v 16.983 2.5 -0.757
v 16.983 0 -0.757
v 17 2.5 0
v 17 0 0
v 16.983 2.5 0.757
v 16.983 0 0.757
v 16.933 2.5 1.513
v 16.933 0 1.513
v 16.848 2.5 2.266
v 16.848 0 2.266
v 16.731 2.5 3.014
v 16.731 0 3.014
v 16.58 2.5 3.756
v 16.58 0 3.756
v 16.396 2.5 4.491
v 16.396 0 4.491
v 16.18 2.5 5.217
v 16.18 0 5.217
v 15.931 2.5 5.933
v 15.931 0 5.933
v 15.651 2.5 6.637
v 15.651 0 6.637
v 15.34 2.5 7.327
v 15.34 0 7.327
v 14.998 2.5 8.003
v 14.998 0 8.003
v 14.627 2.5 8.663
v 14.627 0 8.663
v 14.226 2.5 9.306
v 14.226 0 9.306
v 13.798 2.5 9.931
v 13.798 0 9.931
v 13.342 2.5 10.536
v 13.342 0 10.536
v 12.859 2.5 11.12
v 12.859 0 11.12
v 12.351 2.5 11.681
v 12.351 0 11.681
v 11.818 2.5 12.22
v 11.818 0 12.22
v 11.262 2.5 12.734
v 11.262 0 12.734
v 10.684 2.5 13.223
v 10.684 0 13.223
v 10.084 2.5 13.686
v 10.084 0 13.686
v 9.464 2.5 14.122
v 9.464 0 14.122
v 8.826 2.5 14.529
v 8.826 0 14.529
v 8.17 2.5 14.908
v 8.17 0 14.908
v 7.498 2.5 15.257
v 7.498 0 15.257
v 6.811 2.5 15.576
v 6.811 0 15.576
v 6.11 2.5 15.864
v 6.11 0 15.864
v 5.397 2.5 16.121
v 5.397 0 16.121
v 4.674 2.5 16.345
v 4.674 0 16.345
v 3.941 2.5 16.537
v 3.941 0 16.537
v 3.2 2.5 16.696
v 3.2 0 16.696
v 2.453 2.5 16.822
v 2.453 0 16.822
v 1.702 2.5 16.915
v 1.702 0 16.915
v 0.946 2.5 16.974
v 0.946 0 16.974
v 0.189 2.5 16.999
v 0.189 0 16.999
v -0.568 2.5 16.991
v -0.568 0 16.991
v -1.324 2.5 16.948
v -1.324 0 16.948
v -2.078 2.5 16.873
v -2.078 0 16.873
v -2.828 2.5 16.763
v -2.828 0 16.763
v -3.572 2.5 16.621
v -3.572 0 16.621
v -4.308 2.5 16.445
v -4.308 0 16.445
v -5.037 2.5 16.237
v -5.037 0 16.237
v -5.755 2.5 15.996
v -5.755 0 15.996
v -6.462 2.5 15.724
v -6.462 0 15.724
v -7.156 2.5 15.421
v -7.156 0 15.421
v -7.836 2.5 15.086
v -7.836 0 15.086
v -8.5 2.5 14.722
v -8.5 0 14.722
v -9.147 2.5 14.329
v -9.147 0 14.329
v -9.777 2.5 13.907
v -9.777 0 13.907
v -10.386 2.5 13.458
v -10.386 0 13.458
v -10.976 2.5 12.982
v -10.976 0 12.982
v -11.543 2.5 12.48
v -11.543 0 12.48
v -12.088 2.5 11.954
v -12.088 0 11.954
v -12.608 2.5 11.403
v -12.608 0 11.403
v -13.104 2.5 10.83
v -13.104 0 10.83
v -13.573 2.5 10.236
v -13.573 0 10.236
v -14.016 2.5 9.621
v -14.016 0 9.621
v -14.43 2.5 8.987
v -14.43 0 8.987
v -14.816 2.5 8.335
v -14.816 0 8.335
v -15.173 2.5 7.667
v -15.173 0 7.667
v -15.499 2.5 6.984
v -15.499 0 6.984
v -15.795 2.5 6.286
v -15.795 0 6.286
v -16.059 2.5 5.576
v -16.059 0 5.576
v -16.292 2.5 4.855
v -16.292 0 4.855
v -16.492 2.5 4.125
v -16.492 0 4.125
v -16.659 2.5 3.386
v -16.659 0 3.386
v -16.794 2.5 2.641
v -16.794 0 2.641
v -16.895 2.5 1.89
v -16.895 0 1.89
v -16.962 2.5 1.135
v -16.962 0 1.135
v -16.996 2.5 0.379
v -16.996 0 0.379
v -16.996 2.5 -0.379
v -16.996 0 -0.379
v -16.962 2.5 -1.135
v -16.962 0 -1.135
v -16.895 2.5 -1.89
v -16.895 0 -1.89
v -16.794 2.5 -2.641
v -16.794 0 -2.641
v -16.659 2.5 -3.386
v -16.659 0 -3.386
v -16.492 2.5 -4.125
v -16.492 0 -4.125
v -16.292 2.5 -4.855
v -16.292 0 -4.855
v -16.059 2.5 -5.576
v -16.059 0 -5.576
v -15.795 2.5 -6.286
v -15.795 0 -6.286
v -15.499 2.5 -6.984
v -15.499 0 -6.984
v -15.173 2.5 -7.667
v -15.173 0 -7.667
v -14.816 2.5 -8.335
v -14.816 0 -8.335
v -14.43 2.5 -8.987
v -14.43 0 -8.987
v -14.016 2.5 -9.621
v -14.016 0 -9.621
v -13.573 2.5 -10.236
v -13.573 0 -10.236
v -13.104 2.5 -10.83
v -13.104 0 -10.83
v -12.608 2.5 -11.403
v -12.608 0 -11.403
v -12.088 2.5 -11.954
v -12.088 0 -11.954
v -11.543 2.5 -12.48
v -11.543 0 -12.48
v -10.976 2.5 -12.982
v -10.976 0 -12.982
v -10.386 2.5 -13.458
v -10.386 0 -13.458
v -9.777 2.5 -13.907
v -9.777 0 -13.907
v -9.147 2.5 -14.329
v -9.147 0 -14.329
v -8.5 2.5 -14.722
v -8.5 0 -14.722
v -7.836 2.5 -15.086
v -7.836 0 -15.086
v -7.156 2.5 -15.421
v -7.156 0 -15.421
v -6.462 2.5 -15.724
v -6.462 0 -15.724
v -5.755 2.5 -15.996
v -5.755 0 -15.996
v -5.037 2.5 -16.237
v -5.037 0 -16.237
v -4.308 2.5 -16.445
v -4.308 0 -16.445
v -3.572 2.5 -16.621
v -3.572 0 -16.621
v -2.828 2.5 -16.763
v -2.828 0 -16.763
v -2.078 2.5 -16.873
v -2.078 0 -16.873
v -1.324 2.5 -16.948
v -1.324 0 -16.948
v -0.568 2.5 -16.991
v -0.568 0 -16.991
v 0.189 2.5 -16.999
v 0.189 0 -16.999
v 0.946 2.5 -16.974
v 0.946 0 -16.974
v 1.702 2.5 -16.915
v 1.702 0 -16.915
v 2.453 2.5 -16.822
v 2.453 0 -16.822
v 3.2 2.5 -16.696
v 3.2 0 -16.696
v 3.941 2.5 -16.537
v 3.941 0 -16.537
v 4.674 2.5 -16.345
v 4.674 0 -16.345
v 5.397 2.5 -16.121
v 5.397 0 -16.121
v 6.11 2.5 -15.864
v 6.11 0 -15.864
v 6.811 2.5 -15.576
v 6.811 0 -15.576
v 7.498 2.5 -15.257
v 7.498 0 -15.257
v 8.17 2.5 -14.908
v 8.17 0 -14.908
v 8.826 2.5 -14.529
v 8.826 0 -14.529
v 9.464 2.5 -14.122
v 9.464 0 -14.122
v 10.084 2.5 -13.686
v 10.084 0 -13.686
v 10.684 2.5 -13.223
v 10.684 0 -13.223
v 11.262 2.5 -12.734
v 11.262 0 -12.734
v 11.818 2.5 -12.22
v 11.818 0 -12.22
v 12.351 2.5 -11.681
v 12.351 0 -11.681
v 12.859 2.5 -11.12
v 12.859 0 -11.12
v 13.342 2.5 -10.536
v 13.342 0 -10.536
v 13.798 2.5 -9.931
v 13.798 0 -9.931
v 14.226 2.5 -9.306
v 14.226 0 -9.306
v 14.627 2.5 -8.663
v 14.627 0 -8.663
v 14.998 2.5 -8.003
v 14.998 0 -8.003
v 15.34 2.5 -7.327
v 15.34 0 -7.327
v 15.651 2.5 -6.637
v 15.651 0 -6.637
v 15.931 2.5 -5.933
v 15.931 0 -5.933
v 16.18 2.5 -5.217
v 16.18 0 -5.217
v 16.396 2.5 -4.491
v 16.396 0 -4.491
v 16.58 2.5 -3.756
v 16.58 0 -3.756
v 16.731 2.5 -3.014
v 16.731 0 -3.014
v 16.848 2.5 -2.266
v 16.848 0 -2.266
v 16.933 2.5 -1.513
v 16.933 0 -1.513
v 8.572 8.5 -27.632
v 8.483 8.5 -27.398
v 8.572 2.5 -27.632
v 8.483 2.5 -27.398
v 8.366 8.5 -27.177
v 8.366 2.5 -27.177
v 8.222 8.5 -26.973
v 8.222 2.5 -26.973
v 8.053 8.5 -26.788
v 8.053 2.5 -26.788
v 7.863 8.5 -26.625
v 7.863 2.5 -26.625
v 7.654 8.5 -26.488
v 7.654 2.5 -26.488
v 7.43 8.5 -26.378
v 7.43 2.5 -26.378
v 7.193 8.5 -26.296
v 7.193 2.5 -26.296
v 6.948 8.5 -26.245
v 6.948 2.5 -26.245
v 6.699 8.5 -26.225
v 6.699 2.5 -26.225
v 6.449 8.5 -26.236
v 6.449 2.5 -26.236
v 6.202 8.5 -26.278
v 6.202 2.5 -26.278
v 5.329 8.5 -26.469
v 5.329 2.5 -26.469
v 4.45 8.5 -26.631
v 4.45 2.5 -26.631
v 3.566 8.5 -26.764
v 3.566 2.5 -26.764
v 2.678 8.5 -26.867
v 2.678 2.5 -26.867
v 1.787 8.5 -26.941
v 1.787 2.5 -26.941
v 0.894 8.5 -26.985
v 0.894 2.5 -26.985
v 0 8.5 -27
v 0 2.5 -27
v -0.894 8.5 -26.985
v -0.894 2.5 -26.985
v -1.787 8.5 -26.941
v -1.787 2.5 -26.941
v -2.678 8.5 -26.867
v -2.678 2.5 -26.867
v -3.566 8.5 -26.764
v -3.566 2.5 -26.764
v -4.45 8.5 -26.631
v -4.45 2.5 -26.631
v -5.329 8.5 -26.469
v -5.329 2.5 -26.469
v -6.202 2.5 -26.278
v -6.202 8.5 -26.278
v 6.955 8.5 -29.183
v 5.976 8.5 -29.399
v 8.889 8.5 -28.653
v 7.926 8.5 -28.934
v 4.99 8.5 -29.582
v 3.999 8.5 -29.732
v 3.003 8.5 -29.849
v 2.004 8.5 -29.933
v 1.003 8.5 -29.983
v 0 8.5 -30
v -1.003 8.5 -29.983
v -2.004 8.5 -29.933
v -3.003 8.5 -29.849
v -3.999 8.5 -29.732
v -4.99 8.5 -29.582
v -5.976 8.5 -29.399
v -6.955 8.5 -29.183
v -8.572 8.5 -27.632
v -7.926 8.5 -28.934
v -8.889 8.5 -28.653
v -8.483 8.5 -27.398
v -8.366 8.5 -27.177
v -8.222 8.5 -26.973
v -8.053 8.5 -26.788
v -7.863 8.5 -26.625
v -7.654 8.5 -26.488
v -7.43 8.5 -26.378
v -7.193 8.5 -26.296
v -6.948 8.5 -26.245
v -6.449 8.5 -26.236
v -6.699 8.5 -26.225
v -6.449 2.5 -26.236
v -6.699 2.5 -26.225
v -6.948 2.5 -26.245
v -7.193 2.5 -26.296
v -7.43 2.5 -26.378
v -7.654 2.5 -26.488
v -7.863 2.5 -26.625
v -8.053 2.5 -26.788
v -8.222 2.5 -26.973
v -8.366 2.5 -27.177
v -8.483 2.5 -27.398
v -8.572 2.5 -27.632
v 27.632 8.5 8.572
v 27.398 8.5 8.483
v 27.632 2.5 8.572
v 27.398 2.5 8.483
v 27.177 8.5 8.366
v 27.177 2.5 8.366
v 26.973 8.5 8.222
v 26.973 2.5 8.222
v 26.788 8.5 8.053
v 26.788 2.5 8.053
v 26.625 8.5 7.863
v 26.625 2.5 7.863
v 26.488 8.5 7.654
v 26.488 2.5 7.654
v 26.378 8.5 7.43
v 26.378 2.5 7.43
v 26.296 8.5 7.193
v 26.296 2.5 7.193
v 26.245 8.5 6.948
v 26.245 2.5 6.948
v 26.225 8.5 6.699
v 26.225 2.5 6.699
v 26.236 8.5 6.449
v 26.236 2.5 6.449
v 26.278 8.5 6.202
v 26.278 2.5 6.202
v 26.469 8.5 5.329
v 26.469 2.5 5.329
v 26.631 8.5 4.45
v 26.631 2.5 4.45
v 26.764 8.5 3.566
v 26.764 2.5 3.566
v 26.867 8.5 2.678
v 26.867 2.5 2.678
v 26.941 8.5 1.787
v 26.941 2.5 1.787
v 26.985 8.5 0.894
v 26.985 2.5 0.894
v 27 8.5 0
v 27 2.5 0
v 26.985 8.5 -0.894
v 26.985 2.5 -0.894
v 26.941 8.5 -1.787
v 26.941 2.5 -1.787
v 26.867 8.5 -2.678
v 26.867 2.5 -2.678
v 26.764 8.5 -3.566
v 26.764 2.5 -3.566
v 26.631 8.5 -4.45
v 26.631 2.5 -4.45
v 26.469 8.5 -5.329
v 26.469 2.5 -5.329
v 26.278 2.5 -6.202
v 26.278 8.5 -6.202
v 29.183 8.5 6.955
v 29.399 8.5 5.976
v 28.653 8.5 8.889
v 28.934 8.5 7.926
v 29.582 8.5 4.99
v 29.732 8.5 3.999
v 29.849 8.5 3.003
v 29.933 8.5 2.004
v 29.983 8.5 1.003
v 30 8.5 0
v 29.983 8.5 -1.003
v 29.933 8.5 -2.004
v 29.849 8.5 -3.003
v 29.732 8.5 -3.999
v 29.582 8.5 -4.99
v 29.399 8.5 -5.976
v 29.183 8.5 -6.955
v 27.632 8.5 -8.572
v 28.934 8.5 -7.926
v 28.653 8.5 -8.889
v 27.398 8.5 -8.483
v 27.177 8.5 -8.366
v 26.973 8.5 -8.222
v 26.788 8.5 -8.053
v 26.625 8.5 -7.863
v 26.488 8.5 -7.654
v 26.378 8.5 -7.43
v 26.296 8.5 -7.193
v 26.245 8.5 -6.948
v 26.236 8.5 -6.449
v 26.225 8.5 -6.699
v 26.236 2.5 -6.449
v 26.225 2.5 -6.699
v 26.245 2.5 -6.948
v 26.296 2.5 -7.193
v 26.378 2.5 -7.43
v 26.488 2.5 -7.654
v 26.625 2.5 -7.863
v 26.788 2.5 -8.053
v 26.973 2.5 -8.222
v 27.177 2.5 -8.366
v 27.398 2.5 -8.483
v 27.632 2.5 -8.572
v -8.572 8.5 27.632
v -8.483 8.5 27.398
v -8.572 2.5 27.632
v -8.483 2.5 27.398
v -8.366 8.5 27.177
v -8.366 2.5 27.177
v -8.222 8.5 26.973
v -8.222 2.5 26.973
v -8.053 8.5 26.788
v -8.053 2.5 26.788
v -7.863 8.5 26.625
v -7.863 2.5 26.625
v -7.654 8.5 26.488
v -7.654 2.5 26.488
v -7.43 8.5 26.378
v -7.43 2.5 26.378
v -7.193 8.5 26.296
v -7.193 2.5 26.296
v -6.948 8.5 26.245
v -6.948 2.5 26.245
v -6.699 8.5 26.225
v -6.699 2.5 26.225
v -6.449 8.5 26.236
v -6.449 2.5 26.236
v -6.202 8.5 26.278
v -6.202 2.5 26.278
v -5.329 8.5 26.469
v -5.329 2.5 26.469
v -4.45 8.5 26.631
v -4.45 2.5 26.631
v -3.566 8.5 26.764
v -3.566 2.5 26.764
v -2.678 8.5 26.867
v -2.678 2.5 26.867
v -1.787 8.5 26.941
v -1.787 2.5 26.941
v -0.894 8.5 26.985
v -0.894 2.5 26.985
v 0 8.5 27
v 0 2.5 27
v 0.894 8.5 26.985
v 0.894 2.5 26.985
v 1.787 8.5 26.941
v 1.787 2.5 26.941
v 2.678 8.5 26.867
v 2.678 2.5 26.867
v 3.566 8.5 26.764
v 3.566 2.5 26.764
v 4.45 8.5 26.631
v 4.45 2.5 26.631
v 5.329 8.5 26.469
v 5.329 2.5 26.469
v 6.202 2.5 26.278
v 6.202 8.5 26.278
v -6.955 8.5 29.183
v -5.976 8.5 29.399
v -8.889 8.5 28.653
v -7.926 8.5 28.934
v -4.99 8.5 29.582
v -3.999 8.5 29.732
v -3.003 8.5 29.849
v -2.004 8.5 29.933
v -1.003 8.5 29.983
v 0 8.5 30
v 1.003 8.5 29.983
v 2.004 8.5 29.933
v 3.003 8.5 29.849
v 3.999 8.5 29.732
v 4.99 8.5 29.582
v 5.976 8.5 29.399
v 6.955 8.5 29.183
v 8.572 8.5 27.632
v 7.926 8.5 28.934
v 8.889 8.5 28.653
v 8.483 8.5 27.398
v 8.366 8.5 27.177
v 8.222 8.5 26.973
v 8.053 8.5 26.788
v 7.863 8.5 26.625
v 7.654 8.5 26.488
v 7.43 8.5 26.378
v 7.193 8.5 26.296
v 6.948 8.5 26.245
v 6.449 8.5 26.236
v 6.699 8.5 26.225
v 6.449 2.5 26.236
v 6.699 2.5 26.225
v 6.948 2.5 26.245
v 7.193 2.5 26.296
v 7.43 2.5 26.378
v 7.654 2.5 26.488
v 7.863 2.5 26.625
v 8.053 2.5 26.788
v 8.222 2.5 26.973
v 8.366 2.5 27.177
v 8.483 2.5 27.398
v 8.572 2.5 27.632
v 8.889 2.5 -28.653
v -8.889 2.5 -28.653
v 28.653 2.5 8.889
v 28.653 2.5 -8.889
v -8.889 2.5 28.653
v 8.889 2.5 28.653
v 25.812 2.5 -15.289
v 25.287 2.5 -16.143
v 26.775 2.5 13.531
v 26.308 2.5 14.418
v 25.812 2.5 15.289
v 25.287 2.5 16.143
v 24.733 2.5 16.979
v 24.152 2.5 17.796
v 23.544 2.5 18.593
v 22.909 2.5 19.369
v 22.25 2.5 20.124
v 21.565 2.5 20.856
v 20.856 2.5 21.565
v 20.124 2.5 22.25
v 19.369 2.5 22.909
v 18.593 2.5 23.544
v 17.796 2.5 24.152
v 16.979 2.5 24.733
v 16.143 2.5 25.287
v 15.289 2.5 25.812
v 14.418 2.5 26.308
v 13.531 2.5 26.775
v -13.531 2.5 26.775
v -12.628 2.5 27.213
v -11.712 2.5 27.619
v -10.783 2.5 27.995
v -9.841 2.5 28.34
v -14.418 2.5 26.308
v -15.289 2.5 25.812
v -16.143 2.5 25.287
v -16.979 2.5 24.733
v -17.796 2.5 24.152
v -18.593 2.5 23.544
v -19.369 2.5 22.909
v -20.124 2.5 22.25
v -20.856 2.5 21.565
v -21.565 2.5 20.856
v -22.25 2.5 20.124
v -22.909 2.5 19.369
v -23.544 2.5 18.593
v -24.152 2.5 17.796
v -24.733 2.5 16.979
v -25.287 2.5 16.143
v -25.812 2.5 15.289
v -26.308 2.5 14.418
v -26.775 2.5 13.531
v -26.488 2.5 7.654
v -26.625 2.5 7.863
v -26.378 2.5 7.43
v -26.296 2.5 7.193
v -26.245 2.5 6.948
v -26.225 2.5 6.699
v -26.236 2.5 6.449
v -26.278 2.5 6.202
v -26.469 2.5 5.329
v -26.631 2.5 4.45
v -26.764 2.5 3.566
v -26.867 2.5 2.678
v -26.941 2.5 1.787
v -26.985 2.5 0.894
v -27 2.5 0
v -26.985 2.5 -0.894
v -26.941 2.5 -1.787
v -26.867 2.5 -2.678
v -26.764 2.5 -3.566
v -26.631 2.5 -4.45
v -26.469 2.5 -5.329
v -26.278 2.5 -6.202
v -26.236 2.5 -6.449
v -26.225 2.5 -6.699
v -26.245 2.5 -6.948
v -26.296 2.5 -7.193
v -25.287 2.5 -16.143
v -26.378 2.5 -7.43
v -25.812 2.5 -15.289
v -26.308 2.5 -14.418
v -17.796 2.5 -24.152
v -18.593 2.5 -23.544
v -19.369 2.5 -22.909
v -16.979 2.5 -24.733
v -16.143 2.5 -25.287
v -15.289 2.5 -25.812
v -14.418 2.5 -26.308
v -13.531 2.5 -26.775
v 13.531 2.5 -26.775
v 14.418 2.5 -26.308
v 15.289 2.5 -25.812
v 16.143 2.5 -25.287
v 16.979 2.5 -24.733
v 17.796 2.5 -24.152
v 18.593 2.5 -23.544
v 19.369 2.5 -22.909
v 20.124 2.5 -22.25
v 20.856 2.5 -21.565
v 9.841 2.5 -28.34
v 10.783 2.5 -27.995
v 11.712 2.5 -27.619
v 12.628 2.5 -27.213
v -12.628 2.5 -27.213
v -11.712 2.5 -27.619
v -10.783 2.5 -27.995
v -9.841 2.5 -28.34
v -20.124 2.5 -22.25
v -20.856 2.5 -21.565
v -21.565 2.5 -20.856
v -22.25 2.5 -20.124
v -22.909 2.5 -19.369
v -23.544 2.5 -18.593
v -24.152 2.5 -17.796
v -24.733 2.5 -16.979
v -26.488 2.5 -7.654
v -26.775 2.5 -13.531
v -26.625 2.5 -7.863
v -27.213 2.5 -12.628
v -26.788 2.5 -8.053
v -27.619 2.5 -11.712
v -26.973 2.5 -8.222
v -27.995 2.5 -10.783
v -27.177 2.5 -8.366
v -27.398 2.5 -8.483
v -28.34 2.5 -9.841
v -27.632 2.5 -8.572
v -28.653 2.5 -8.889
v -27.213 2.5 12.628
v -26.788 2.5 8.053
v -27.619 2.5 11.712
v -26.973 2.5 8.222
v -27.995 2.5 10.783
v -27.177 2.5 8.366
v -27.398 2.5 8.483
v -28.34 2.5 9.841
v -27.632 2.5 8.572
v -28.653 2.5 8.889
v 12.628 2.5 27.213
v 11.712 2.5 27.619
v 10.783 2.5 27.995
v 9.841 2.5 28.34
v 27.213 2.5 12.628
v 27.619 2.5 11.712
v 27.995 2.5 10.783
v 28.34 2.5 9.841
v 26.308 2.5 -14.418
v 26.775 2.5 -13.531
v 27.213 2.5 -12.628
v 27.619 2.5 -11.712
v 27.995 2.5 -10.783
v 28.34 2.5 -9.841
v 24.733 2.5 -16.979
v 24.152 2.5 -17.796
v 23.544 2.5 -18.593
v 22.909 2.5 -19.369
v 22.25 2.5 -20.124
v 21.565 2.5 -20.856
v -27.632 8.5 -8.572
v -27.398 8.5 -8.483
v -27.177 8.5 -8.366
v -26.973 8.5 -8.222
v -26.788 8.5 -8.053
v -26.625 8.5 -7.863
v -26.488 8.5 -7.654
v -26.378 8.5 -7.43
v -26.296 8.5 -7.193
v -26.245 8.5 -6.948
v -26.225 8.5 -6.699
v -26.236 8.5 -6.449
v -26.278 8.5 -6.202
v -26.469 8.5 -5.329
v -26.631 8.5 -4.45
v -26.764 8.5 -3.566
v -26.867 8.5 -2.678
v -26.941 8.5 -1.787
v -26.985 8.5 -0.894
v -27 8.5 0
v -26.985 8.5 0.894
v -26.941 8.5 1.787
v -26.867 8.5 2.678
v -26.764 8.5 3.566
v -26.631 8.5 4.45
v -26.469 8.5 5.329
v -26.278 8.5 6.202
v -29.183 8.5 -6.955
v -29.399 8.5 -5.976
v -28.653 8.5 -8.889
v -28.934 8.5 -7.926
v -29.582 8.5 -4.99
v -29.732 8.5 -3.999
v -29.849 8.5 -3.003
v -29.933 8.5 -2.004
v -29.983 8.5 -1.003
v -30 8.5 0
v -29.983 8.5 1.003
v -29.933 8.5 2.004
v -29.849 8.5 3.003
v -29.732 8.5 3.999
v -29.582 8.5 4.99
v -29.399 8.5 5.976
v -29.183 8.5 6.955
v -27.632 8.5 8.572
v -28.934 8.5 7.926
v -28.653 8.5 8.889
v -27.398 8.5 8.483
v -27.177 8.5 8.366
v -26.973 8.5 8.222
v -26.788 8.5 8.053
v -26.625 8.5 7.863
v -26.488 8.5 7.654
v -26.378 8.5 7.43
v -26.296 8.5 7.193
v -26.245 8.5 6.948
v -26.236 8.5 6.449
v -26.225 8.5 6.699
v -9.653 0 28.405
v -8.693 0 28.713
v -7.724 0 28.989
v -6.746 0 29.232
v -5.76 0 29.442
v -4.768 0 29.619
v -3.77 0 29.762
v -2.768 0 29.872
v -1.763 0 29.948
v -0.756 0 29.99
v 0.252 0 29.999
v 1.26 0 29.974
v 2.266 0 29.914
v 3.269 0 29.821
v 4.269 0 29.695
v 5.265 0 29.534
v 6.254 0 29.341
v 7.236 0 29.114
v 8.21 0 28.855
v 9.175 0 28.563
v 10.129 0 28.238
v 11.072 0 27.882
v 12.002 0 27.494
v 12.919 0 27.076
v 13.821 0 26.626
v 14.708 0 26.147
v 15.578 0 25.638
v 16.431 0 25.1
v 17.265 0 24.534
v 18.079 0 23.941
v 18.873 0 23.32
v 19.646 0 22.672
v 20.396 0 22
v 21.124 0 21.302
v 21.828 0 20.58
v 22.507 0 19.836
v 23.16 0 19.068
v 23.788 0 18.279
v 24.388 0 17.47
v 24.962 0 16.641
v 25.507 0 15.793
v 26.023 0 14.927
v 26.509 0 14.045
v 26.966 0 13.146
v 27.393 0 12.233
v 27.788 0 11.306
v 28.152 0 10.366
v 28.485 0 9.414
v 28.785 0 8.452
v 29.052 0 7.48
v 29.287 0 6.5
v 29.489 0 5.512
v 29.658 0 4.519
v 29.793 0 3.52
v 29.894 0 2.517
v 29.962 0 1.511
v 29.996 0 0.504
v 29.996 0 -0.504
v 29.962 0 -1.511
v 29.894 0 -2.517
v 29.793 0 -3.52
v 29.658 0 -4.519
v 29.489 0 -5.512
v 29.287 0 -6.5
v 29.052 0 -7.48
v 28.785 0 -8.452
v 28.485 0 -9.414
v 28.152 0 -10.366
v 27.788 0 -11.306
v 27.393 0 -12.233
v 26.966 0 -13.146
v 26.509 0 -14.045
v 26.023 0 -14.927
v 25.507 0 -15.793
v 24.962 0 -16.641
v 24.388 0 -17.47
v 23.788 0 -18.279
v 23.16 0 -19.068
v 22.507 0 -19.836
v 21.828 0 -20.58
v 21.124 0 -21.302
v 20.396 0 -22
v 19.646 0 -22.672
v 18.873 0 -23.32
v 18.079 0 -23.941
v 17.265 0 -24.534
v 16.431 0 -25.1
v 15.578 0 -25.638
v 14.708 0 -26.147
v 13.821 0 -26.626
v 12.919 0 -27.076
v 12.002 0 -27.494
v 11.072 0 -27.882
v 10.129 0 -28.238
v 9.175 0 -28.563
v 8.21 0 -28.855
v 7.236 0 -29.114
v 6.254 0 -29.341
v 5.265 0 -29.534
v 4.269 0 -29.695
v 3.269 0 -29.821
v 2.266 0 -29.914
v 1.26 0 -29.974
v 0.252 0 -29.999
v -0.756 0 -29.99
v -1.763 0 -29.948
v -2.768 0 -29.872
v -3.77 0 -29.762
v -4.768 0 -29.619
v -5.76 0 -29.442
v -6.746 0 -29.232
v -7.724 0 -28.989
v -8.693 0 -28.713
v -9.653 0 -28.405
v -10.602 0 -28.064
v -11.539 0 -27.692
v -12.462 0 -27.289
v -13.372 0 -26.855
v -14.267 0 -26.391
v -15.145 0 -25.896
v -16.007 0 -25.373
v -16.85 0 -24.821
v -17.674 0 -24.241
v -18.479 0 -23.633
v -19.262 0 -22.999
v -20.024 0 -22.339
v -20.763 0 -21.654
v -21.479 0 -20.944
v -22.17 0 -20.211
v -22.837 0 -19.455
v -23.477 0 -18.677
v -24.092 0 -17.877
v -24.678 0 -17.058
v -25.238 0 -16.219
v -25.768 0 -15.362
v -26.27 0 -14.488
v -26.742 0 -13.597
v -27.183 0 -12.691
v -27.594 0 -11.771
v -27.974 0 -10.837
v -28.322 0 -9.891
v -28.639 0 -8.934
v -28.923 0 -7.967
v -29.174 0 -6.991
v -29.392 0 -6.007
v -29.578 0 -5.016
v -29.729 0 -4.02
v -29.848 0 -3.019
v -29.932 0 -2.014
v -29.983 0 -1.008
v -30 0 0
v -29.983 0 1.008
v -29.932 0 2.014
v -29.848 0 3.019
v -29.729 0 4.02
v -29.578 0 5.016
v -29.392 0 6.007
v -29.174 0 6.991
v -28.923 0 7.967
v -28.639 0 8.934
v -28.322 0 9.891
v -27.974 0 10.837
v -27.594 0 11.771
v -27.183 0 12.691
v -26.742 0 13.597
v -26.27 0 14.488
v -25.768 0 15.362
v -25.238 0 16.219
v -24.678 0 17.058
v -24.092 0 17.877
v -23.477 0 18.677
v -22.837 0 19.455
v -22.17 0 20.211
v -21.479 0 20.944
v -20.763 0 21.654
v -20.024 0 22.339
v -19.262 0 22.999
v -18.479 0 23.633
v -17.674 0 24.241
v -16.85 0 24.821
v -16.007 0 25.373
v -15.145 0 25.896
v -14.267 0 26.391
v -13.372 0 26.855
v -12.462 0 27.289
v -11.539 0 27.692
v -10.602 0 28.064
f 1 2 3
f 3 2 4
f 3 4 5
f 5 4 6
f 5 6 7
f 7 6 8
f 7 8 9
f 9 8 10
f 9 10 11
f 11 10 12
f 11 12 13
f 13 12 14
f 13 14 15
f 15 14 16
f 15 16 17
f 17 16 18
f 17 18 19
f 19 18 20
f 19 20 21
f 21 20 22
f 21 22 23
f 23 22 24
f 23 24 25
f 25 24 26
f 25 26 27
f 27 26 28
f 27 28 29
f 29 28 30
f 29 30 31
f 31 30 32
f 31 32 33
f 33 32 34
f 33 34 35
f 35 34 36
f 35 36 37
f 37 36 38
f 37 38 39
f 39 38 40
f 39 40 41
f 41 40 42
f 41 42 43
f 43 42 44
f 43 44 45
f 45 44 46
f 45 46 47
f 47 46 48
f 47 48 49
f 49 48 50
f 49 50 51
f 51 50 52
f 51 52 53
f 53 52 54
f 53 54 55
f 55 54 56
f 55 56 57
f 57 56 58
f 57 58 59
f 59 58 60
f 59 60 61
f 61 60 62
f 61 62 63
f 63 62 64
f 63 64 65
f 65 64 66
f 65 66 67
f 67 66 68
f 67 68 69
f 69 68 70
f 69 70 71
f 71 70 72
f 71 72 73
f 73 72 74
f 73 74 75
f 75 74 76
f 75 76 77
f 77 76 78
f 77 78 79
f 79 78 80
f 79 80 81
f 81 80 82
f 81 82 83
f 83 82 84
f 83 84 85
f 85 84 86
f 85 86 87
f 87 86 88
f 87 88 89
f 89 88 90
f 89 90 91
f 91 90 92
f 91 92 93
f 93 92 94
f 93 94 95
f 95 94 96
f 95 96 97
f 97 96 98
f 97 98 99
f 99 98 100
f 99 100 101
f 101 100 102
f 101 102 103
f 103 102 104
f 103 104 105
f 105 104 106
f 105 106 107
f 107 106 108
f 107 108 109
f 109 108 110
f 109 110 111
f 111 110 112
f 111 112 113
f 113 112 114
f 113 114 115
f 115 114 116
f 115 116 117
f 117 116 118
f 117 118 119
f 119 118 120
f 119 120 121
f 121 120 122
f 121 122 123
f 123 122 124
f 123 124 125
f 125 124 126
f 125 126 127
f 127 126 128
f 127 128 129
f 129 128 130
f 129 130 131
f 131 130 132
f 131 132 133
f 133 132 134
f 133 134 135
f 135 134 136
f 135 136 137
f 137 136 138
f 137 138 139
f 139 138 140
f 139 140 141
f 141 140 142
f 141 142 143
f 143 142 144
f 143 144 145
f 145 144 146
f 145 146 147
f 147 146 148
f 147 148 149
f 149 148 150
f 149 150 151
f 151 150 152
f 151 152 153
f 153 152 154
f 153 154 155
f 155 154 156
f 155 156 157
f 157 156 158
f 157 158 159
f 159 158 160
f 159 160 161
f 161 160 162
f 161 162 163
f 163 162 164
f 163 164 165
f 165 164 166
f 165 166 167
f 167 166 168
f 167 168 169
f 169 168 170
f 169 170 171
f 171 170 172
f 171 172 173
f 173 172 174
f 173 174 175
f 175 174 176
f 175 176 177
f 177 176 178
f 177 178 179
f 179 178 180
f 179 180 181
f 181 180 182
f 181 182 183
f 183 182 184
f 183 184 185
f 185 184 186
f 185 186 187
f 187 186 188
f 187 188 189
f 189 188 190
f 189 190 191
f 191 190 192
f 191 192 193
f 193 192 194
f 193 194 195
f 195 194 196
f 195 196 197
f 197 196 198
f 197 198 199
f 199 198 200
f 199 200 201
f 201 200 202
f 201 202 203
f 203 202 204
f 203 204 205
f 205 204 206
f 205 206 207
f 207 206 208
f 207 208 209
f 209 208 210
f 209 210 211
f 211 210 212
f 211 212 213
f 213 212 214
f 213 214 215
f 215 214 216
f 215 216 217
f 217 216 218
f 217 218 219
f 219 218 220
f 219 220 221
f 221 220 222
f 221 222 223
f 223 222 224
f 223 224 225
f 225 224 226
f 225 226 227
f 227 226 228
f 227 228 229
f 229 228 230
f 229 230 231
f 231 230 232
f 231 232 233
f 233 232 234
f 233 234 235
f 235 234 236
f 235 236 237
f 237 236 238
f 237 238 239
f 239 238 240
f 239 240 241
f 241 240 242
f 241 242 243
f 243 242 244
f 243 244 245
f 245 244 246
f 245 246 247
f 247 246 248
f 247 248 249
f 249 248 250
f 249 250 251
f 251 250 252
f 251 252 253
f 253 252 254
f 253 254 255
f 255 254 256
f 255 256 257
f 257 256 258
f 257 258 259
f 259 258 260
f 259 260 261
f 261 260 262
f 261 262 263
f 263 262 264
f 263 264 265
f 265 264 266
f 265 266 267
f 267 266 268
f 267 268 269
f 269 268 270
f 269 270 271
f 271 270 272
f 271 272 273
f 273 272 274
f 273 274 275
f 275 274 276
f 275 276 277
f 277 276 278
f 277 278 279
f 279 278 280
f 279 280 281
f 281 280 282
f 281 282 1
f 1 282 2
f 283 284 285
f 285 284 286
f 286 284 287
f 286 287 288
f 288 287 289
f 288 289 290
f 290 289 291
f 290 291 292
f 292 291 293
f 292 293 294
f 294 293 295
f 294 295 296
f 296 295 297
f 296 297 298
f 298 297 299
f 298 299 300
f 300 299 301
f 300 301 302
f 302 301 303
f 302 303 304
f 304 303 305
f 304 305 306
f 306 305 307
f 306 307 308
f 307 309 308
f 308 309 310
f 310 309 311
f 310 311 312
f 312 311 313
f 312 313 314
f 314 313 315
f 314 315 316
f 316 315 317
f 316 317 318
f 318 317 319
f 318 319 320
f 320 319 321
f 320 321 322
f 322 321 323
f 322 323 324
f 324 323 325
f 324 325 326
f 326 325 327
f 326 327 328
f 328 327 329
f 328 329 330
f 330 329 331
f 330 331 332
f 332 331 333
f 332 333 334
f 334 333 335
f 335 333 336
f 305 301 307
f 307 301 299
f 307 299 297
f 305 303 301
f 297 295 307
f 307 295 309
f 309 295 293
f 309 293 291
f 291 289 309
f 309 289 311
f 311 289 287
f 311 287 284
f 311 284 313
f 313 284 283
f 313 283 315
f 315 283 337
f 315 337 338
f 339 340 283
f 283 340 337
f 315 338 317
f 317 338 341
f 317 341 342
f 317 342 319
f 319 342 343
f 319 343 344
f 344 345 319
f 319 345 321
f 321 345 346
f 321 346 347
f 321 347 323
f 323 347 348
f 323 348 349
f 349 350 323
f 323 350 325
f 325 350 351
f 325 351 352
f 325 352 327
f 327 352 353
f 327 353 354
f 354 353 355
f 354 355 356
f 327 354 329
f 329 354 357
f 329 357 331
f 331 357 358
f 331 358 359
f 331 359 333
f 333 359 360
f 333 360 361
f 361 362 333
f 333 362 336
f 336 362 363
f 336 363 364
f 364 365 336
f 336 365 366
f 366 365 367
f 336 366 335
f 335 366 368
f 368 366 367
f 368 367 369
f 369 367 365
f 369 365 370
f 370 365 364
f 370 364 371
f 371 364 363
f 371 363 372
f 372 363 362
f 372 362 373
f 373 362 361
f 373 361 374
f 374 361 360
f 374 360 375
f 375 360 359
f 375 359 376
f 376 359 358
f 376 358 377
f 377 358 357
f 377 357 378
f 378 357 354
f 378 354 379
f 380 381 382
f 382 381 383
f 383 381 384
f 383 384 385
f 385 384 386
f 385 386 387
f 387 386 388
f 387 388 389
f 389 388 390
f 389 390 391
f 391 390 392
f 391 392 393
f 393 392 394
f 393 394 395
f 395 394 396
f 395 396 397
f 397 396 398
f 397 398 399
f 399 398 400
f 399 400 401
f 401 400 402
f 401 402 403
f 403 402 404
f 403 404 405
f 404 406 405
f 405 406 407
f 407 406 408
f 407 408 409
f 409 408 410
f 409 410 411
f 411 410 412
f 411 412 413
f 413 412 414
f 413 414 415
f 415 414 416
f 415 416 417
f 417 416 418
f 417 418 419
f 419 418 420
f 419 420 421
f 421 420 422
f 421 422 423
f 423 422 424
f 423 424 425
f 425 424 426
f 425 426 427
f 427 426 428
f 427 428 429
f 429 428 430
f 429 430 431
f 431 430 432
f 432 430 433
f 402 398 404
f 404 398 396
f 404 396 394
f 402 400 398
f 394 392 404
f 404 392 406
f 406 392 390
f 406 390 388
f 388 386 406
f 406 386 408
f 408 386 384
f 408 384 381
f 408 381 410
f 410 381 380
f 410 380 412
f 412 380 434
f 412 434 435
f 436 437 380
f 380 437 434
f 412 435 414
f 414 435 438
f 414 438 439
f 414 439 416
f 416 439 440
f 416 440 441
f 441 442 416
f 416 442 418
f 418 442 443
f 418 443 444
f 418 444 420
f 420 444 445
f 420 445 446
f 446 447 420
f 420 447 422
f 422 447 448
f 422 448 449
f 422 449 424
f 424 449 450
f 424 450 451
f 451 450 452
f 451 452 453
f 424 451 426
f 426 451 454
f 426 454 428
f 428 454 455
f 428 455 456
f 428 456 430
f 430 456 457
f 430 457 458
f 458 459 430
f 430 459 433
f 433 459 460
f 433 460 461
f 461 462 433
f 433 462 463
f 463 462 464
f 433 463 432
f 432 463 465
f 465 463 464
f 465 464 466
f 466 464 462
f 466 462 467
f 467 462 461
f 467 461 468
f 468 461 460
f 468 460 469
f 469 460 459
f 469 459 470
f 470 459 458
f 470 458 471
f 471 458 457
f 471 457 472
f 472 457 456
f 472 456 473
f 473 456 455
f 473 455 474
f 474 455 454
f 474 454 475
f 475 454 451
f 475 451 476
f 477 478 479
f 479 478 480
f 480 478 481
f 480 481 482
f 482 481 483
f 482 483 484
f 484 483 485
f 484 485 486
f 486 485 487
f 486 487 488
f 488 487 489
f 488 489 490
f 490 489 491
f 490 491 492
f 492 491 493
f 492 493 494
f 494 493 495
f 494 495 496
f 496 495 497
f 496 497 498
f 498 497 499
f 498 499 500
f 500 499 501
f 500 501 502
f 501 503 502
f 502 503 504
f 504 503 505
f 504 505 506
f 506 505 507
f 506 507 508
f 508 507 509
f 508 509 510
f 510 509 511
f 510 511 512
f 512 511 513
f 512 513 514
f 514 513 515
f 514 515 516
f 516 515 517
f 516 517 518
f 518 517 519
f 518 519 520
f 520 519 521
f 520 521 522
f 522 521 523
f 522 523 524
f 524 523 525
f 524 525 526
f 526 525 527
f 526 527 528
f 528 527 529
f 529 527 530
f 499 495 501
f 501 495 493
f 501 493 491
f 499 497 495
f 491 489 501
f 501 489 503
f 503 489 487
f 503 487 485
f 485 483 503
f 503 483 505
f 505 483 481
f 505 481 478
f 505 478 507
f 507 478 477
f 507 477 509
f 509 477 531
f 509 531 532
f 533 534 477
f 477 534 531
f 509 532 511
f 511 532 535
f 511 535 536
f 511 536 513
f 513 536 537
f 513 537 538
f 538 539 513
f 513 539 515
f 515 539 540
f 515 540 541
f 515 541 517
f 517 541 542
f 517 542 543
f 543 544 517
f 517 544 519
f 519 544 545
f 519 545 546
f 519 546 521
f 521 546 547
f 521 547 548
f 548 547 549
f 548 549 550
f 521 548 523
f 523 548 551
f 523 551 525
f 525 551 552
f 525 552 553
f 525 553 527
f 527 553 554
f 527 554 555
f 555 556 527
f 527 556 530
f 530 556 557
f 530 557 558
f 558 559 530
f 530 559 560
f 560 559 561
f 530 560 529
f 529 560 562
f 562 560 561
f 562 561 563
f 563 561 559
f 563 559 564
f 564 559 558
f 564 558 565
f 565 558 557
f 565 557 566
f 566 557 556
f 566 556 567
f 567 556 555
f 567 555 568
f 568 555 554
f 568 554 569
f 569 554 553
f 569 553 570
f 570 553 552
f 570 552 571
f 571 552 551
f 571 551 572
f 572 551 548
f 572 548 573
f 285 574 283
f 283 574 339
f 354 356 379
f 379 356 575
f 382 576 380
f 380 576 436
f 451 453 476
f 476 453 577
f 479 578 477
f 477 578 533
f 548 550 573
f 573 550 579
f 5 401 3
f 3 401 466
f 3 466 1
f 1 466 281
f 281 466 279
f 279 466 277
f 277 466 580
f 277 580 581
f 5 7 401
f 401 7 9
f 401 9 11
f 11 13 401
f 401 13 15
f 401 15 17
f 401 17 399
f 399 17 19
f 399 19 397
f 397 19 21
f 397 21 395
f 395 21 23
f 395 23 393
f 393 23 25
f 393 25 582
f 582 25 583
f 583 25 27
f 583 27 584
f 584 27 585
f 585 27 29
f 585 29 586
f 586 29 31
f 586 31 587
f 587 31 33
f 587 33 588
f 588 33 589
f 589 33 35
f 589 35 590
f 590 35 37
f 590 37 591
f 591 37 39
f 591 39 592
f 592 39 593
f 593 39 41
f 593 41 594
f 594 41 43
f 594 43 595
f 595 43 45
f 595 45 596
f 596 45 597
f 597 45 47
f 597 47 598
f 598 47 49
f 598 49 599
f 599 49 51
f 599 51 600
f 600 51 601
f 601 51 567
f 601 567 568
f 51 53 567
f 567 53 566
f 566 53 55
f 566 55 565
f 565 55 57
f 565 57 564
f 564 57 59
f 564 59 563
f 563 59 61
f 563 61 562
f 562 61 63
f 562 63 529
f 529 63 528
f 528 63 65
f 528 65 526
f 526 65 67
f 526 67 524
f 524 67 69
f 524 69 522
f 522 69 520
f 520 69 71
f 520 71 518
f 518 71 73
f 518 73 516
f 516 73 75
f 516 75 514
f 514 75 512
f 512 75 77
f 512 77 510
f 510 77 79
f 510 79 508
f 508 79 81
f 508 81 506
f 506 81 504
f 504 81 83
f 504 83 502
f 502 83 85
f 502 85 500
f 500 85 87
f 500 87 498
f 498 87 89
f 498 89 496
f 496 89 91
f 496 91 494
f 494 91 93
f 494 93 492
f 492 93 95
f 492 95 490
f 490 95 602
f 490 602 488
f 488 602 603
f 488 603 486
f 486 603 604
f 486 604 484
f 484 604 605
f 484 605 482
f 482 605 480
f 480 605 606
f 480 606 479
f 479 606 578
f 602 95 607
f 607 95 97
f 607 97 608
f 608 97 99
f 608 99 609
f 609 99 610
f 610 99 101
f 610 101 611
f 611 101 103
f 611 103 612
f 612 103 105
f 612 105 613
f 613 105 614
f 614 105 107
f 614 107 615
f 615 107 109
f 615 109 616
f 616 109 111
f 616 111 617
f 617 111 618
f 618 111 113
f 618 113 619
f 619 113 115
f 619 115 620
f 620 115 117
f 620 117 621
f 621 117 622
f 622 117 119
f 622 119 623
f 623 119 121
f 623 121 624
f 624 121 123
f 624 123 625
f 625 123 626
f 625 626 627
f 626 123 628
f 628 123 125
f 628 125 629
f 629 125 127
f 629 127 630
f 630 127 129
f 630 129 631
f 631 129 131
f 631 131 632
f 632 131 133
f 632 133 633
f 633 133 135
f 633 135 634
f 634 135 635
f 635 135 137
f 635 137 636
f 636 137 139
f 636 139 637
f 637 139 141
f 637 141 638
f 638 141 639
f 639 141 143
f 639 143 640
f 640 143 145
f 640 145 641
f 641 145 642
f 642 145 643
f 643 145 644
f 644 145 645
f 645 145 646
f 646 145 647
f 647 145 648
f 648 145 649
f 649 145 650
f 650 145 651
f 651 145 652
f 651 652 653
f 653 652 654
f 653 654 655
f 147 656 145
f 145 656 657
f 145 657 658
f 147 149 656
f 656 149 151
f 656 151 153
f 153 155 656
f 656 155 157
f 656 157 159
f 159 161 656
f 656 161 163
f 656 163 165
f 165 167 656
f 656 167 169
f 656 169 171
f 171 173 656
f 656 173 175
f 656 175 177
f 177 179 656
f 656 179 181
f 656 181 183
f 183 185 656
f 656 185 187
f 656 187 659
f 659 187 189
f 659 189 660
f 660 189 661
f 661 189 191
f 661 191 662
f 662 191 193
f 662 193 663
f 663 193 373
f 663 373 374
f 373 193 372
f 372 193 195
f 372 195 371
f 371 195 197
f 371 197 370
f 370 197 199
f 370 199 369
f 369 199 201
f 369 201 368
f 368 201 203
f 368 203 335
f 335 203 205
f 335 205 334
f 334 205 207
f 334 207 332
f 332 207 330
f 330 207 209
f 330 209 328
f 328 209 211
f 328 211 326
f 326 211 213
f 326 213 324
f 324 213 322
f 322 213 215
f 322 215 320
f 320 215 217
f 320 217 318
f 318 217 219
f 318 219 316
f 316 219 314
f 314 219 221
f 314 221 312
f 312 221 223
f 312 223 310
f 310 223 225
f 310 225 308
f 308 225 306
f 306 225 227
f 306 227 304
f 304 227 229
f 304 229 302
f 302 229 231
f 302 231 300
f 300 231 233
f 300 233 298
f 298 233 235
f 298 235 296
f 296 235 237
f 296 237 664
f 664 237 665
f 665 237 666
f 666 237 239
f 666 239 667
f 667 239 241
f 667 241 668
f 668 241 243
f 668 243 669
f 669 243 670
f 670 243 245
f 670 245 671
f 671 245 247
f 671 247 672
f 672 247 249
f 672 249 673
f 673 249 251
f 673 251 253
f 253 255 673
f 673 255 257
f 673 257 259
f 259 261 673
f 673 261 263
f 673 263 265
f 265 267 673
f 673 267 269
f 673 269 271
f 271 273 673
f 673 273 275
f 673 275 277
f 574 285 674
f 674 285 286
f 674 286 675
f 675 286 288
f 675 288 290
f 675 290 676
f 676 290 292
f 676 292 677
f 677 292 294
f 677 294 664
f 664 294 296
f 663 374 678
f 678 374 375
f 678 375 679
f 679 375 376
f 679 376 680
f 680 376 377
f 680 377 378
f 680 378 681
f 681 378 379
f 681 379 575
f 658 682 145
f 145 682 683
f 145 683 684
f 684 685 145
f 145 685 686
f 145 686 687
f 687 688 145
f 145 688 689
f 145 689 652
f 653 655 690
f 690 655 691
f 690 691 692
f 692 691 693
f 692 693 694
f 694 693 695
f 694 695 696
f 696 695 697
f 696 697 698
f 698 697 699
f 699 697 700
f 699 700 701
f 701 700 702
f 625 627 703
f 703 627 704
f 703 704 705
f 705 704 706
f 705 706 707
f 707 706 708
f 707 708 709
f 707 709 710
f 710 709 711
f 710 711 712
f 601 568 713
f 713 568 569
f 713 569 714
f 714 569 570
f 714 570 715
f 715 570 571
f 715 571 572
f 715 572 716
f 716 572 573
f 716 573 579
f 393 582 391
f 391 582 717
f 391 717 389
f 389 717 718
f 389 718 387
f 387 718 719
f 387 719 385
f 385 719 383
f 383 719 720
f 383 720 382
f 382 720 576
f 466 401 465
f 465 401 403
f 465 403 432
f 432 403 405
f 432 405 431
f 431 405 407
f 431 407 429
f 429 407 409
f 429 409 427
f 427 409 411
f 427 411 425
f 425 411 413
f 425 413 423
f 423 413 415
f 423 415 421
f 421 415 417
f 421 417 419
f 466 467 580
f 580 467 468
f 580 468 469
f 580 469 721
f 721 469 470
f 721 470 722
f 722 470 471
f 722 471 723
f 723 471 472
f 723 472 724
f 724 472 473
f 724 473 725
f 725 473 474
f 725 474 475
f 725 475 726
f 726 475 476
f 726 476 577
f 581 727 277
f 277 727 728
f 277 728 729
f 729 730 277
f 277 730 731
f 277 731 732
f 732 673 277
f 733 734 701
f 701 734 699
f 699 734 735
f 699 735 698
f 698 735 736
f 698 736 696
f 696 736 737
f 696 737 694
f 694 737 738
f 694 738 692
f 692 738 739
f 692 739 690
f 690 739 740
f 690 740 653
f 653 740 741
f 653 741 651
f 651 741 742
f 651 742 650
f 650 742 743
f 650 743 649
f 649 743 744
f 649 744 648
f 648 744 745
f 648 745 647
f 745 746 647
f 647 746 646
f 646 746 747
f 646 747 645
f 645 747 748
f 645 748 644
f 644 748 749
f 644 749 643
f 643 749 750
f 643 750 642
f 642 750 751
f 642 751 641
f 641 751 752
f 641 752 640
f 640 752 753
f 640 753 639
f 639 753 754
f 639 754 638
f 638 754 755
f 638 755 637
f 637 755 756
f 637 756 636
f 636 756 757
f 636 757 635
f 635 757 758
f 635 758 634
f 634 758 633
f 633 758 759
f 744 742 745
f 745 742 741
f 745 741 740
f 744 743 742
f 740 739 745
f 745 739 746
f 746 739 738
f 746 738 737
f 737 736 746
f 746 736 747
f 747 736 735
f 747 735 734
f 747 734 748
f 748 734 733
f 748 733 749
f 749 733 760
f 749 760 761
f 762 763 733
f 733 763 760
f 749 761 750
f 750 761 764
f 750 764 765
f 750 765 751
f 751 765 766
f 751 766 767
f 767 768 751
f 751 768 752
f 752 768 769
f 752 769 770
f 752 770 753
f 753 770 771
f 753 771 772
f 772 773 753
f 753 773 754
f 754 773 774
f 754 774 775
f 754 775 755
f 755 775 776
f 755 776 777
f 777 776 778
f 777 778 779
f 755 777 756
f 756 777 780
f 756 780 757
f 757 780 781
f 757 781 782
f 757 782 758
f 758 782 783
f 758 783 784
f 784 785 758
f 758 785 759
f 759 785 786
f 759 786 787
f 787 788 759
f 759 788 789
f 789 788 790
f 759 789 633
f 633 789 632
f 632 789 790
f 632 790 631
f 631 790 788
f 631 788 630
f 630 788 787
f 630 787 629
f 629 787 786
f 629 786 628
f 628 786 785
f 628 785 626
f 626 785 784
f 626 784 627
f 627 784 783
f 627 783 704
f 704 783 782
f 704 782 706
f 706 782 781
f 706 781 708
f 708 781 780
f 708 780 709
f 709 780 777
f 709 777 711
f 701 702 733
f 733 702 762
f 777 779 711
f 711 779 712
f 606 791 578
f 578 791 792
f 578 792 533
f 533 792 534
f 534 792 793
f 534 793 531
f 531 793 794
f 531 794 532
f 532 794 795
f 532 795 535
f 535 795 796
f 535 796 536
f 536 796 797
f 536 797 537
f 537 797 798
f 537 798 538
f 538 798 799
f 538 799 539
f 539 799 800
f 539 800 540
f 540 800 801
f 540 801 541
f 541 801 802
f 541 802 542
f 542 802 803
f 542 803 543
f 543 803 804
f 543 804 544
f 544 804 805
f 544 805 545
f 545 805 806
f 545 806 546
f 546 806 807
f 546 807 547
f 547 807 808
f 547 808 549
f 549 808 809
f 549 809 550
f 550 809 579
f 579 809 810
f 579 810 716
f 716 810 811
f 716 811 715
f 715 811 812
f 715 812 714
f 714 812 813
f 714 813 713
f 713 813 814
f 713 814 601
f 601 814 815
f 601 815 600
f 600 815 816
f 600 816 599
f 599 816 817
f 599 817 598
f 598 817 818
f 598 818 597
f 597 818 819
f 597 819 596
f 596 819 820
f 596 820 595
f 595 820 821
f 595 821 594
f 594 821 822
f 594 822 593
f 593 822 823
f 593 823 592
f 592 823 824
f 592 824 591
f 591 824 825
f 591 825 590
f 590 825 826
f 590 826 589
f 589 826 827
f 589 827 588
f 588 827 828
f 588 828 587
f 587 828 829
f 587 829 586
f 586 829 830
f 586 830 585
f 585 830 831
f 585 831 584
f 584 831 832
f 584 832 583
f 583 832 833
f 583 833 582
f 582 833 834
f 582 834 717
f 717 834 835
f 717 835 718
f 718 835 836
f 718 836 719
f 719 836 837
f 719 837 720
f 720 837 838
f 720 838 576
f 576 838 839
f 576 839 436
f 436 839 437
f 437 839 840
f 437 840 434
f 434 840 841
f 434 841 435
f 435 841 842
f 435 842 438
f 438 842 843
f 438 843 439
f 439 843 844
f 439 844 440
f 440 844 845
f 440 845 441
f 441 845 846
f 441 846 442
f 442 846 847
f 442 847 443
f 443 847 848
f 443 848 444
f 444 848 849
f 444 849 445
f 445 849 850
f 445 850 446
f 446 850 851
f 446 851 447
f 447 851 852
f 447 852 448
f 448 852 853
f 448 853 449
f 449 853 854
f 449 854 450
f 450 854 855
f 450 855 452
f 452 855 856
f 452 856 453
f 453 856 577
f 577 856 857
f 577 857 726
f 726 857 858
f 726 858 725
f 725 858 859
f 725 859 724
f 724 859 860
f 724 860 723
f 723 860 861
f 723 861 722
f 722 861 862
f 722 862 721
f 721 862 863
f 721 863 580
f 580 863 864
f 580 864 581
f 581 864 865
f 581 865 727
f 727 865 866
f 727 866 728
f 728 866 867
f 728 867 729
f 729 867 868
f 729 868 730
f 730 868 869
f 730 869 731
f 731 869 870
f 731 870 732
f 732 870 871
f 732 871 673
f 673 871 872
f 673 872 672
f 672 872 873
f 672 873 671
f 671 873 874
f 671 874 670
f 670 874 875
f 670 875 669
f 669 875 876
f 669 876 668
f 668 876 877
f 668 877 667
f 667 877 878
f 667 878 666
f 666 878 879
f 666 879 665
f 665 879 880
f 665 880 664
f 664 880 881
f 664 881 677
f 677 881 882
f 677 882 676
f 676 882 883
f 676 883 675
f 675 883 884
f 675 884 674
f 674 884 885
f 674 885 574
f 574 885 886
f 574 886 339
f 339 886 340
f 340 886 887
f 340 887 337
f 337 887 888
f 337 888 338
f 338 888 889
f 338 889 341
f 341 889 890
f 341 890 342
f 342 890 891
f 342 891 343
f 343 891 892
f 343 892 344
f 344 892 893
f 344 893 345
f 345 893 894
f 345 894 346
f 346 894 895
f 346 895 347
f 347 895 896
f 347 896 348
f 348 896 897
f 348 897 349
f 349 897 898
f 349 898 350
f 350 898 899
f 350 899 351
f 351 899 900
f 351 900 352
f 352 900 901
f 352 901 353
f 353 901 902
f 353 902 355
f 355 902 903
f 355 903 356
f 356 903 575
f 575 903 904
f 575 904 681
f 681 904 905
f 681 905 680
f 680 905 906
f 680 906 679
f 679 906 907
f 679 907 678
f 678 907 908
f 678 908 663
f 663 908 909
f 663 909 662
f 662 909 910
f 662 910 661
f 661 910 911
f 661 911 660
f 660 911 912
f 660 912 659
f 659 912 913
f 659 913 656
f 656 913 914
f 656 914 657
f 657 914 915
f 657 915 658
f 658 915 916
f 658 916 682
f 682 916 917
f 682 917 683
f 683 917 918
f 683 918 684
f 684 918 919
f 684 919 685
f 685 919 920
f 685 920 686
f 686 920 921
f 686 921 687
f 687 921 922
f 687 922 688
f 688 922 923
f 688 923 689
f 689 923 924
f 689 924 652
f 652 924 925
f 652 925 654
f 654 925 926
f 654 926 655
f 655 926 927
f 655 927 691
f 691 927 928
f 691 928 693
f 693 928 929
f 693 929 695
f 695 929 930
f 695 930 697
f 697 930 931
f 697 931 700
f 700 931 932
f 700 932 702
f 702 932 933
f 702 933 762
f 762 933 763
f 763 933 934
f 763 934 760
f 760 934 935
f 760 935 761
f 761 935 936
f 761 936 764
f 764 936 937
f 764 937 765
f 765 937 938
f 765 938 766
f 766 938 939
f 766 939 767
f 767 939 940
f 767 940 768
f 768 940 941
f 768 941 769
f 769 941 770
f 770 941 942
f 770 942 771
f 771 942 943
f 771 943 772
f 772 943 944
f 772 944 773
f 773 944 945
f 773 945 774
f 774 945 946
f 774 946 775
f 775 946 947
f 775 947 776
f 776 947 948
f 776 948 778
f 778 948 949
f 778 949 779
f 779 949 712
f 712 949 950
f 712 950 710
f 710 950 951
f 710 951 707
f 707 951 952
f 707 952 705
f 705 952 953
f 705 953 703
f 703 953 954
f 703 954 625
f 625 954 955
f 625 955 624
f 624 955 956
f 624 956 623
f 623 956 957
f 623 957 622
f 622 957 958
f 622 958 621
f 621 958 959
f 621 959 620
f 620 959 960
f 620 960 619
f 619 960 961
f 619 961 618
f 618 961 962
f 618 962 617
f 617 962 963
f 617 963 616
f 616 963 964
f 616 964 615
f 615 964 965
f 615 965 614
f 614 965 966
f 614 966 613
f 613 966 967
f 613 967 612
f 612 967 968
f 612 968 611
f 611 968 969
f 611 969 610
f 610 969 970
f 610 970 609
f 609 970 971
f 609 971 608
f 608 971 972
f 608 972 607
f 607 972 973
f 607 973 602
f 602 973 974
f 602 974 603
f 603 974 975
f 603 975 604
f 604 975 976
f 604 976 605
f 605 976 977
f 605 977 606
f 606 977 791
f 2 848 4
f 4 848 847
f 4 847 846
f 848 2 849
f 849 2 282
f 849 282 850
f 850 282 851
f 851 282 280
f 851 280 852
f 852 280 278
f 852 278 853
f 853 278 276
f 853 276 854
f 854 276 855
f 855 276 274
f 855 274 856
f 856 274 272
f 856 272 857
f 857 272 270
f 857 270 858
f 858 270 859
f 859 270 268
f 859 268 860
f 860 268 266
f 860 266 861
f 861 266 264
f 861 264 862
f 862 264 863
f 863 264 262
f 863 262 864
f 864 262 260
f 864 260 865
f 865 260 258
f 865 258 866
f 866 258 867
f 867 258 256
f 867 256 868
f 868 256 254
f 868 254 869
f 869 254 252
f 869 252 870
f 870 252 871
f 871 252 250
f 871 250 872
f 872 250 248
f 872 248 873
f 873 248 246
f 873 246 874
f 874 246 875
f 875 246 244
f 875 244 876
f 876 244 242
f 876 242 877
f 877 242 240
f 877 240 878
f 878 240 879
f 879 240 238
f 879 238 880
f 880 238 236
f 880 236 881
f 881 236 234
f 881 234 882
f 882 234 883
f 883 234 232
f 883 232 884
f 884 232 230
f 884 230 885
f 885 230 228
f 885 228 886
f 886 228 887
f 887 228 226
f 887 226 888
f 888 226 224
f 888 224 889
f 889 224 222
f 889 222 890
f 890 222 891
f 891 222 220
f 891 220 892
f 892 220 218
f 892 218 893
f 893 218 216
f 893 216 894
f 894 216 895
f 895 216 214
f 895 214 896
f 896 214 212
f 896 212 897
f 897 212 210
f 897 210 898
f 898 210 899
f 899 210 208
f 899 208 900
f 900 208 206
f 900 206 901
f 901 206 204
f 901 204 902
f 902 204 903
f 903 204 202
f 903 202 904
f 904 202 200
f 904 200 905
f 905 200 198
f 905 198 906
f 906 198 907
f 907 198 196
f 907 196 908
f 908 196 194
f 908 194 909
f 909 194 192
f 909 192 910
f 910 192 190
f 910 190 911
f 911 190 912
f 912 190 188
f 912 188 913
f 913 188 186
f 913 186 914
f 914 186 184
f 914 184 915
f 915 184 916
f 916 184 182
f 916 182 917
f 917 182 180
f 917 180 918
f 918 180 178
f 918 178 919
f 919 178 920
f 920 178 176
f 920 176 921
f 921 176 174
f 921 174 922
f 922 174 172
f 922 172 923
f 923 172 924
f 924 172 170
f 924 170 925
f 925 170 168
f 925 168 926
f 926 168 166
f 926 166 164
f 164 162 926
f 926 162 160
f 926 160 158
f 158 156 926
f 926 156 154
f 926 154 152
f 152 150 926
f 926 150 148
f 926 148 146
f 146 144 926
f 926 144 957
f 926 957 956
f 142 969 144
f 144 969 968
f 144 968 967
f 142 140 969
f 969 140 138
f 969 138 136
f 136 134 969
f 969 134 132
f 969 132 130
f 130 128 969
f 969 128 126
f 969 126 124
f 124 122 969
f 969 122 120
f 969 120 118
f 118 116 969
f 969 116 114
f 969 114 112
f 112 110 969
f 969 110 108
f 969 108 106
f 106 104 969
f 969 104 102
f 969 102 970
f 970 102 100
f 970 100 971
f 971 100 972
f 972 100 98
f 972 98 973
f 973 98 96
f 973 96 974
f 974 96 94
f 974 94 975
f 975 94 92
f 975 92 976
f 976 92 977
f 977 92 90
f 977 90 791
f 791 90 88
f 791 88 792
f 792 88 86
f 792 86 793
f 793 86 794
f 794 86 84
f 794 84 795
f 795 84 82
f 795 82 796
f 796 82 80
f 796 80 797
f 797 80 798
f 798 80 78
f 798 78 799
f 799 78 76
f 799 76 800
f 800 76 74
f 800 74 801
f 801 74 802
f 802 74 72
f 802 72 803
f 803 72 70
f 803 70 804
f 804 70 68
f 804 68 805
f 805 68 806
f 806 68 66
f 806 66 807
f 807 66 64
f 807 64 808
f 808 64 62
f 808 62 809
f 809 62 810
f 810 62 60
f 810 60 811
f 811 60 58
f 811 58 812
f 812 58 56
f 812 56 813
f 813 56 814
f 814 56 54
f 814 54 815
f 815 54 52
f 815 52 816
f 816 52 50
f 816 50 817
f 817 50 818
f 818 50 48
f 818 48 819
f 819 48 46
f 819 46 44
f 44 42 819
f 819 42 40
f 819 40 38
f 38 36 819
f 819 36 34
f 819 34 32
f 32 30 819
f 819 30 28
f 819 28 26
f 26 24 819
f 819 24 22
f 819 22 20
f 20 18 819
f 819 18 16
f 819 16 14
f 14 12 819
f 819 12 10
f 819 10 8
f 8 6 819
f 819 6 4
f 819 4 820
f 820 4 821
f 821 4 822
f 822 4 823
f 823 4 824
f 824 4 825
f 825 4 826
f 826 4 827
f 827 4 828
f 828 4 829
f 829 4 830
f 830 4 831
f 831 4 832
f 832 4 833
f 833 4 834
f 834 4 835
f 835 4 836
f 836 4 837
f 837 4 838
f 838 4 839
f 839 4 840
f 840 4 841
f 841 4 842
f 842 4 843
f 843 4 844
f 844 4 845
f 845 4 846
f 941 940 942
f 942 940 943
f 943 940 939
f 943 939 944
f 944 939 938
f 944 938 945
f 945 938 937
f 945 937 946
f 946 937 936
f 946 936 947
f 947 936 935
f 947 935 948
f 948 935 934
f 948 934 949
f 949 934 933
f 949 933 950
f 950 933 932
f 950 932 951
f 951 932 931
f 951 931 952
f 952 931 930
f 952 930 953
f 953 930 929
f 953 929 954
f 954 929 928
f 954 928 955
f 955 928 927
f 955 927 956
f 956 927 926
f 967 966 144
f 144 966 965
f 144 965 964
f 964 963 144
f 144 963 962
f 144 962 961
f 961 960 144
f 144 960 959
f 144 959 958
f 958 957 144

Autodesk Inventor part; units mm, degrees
ref_plane "YZ Plane" through (0, 0, 0) normal (1, 0, 0) x (0, 1, 0)
ref_plane "XZ Plane" through (0, 0, 0) normal (0, 1, 0) x (-1, 0, 0)
ref_plane "XY Plane" through (0, 0, 0) normal (0, 0, 1) x (1, 0, 0)
sketch "Sketch1" plane through (0, 0, 0) normal (0, 1, 0) x (-1, 0, 0)
  circle A0 centre (0, 0) radius 30
  dimension "d0" = 60
extrude "Extrusion1" add sketch "Sketch1" along normal blind 2.5
sketch "Sketch2" plane through (0, 2.5, 0) normal (0, 1, 0) x (1, 0, 0)
  circle A0 centre (0, 0) radius 30 projected
  circle A1 centre (0, 0) radius 27
  circle A2 centre (0, 0) radius 30 construction
  line L0 (-28.6529, -8.8889) -> (-25.7876, -8)
  line L1 (-25.7876, 8) -> (-28.6529, 8.8889)
  line L2 (-25.7876, -8) -> (-25.7876, 8) construction
  arc A3 (-28.6529, 8.8889) -> (-28.6529, -8.8889) centre (0, 0) ccw
  arc A4 (-25.7876, 8) -> (-25.7876, -8) centre (0, 0) ccw
  dimension "d3" = 3
  dimension "d4" = 16
extrude "Extrusion2" add sketch "Sketch2" along normal blind 6 contours L1 A1 L0 A0 picked at (-28.0966, 6.6307)
fillet "Fillet1" radius 2 2 edges at (-25.7876, 5.5, 8) (-25.7876, 5.5, -8)
pattern_circular "Circular Pattern1" count 4 over 360 about axis through (0, 0, 0) along (0, 1, 0) of "Fillet1", "Extrusion2"
sketch "Sketch3" plane through (0, 0, 0) normal (0, -1, 0) x (1, 0, 0)
  circle A0 centre (0, 0) radius 17
  dimension "d11" = 34
extrude "Extrusion3" cut sketch "Sketch3" against normal through all
properties part number "button_barrel" material "ABS Plastic"
